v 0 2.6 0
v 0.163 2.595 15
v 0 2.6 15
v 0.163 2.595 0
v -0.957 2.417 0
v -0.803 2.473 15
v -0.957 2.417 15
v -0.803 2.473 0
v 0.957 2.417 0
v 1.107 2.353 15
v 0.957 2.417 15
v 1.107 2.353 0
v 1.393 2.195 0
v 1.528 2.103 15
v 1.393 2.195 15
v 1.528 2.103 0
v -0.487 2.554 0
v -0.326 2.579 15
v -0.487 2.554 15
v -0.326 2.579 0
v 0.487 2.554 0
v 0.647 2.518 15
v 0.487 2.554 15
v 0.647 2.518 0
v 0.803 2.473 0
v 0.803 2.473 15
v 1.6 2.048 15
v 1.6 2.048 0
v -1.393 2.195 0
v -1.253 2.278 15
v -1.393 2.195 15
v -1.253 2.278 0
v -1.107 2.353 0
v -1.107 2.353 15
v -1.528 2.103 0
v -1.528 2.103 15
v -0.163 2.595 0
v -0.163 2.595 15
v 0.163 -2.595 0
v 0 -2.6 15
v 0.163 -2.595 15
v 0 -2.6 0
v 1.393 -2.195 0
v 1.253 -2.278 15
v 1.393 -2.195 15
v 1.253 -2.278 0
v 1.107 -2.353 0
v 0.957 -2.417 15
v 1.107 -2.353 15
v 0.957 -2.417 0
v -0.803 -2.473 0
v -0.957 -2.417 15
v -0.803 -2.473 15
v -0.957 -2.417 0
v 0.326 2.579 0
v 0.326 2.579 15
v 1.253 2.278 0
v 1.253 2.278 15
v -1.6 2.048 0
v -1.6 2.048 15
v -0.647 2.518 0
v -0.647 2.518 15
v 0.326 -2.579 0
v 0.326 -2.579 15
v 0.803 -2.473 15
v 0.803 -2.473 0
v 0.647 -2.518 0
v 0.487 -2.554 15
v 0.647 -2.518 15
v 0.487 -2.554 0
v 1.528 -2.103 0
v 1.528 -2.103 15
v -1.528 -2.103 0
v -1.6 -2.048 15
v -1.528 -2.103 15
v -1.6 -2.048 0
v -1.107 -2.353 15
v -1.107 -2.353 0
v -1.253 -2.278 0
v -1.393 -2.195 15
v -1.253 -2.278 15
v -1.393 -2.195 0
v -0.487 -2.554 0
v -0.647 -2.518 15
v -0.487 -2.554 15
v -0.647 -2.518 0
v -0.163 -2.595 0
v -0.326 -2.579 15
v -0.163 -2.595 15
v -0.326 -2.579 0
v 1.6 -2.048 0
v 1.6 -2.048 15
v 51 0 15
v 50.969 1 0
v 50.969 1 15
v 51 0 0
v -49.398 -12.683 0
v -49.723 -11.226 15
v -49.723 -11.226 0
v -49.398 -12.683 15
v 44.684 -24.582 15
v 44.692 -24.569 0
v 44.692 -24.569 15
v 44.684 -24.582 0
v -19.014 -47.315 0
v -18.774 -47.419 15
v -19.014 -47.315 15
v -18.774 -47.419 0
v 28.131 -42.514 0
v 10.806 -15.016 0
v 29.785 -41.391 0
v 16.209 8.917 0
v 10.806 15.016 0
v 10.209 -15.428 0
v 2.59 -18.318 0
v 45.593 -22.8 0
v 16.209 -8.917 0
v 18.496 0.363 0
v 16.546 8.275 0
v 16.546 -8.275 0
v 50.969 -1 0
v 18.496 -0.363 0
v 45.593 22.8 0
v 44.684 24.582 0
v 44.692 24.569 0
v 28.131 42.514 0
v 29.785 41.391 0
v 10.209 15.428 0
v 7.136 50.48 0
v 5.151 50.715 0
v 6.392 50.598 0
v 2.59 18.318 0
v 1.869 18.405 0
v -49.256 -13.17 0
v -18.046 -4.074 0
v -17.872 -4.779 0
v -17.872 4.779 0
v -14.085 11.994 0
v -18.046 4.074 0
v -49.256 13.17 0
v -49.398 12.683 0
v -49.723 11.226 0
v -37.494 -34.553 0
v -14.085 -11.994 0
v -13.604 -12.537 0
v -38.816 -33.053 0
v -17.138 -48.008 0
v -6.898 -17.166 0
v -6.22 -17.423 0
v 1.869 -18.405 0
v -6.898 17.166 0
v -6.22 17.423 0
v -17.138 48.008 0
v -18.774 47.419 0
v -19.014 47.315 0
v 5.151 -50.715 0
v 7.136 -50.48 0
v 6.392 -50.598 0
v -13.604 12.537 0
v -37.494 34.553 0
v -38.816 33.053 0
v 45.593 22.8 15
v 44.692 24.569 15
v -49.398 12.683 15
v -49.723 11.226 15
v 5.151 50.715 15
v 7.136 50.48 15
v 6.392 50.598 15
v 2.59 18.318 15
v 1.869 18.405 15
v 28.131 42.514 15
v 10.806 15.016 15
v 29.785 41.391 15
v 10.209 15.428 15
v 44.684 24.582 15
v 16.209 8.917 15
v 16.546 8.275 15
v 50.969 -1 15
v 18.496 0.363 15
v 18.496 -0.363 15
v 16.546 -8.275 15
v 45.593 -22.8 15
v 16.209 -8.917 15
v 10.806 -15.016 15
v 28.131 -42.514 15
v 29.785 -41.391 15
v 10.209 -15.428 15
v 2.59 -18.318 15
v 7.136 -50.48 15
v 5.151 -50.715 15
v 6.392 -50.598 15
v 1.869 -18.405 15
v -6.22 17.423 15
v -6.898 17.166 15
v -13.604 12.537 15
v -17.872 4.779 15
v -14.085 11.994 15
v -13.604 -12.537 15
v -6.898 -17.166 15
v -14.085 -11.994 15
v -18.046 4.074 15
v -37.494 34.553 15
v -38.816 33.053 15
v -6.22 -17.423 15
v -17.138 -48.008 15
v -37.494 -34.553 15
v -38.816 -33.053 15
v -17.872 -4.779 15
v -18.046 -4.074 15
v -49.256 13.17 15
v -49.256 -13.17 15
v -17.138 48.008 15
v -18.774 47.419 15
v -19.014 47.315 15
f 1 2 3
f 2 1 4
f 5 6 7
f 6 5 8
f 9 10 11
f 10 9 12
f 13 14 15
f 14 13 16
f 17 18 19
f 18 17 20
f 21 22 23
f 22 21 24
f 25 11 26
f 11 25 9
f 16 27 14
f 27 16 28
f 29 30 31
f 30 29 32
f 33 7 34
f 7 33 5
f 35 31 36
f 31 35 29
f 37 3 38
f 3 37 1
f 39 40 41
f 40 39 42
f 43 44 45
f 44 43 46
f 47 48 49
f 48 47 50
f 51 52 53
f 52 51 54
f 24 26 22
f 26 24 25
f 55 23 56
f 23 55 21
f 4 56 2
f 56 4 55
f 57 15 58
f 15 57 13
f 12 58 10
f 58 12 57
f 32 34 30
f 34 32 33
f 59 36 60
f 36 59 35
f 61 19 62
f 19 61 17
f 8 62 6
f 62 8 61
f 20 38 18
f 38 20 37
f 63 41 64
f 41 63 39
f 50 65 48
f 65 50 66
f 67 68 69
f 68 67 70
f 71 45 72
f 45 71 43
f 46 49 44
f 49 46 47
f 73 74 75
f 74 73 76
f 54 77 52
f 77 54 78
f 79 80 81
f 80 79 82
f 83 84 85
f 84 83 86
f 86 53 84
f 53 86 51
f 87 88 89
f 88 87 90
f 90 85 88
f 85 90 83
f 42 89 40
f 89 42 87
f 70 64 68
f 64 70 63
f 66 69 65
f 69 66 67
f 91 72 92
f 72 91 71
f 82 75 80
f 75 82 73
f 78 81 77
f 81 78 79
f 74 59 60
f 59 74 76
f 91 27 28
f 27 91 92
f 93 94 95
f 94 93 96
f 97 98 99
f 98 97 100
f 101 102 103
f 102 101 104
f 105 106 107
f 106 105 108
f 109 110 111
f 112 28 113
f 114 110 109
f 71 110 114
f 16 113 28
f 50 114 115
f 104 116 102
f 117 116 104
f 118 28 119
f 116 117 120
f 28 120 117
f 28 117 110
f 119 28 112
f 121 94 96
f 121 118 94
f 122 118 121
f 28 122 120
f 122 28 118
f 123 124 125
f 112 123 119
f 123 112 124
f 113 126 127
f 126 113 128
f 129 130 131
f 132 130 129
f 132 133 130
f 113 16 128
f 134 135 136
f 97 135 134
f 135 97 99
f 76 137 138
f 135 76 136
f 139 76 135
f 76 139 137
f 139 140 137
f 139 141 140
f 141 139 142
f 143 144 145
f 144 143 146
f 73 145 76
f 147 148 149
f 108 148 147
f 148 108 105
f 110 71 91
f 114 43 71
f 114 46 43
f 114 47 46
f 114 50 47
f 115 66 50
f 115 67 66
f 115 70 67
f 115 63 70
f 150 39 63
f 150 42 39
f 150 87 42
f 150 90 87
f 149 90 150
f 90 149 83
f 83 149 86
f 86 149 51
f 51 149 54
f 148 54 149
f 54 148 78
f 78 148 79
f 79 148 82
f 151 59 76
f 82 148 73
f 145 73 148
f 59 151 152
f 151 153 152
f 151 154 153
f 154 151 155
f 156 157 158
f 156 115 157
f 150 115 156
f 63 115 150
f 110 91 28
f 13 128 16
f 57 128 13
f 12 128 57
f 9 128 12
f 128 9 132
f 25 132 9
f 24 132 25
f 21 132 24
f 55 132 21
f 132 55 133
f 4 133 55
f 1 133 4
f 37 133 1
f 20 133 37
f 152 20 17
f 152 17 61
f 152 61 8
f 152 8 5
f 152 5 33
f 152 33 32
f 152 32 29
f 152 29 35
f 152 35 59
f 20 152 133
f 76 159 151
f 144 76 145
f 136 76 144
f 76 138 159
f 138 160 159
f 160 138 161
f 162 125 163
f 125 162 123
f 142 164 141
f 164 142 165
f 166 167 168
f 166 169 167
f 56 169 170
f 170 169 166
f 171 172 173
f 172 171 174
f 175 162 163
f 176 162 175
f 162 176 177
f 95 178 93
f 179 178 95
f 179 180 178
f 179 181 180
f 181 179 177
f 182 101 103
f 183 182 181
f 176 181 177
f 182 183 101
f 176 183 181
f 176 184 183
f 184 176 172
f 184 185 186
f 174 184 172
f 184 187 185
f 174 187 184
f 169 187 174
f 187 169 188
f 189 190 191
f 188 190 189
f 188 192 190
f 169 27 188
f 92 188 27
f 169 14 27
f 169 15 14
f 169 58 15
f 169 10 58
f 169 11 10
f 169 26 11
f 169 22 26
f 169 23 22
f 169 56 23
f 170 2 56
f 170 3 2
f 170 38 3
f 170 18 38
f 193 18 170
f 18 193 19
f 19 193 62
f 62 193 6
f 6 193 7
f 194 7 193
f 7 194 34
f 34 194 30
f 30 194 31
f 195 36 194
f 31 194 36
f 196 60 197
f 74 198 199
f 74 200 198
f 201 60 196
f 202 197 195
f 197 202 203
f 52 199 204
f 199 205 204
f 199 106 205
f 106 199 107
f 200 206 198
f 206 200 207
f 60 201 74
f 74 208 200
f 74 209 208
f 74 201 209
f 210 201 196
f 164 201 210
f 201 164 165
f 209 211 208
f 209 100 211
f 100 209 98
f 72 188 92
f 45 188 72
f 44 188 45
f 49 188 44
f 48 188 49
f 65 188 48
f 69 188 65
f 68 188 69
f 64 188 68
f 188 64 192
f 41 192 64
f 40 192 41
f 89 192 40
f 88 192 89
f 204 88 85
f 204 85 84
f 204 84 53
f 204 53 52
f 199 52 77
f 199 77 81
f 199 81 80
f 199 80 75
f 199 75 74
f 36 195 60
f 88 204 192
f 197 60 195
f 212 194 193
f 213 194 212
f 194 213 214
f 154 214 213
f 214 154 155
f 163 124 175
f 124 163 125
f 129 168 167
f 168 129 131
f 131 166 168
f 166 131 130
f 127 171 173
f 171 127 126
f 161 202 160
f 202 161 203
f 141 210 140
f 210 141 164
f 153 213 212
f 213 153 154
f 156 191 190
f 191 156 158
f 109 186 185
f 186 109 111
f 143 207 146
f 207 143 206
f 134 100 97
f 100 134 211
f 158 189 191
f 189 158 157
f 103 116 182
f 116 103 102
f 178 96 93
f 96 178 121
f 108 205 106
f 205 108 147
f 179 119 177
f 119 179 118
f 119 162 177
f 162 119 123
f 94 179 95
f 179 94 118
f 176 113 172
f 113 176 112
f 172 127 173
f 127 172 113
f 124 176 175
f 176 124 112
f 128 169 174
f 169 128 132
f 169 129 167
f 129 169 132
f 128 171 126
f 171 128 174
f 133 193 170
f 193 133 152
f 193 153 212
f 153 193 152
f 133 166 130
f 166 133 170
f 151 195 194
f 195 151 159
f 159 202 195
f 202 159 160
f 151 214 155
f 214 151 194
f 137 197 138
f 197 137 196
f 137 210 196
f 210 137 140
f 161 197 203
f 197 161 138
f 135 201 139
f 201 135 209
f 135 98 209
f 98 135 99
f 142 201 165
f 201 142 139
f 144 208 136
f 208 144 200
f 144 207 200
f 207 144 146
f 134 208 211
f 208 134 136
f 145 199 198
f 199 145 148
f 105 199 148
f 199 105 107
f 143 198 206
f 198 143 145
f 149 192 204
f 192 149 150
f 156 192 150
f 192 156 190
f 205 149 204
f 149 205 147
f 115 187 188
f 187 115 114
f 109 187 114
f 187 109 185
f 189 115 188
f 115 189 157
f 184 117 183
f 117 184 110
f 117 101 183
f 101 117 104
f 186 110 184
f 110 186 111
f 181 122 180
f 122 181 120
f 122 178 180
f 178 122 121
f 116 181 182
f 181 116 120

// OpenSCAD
// Medify - Floor 2: The Windmail (Verified Final Version)
$fn = 100;

// --- פרמטרים הנדסיים ---
outer_dia = 102;      
height = 15;          
wall_thickness = 2.0; 
compartments = 13;
center_core_r = 16;   

angle_per_comp = 360 / compartments;
wall_angle = (wall_thickness * 360) / (PI * outer_dia); 
cutout_angle = angle_per_comp - wall_angle;

difference() {
    union() {
        // 1. הגוף המרכזי
        cylinder(h = height, d = outer_dia);
        
        // 2. ליבה מרכזית מעובה (Hub) שמחברת את הקירות
        cylinder(h = height, r = center_core_r + 2.5);
    }

    // 3. חיתוך 13 התאים
    for (i = [0 : compartments - 1]) {
        rotate([0, 0, i * angle_per_comp + wall_angle/2])
        intersection() {
            translate([0, 0, -1]) cylinder(h = height + 2, r = outer_dia/2 + 2);
            linear_extrude(height = height + 2)
                polygon(points=[
                    [center_core_r + 2.5, 0], 
                    [outer_dia + 2, 0],
                    [outer_dia * 2 * cos(cutout_angle), outer_dia * 2 * sin(cutout_angle)],
                    [(center_core_r + 2.5) * cos(cutout_angle), (center_core_r + 2.5) * sin(cutout_angle)]
                ]);
        }
    }

    // 4. חור הציר המקורי שלך - Double-D Shaft (זהה לחלוטין לקוד המקורי)
    translate([0, 0, -1])
    intersection() {
        cylinder(h = height + 2, d = 5.2); 
        translate([0, 0, (height + 2)/2])
            cube([3.2, 10, height + 2], center = true);
    }
}
